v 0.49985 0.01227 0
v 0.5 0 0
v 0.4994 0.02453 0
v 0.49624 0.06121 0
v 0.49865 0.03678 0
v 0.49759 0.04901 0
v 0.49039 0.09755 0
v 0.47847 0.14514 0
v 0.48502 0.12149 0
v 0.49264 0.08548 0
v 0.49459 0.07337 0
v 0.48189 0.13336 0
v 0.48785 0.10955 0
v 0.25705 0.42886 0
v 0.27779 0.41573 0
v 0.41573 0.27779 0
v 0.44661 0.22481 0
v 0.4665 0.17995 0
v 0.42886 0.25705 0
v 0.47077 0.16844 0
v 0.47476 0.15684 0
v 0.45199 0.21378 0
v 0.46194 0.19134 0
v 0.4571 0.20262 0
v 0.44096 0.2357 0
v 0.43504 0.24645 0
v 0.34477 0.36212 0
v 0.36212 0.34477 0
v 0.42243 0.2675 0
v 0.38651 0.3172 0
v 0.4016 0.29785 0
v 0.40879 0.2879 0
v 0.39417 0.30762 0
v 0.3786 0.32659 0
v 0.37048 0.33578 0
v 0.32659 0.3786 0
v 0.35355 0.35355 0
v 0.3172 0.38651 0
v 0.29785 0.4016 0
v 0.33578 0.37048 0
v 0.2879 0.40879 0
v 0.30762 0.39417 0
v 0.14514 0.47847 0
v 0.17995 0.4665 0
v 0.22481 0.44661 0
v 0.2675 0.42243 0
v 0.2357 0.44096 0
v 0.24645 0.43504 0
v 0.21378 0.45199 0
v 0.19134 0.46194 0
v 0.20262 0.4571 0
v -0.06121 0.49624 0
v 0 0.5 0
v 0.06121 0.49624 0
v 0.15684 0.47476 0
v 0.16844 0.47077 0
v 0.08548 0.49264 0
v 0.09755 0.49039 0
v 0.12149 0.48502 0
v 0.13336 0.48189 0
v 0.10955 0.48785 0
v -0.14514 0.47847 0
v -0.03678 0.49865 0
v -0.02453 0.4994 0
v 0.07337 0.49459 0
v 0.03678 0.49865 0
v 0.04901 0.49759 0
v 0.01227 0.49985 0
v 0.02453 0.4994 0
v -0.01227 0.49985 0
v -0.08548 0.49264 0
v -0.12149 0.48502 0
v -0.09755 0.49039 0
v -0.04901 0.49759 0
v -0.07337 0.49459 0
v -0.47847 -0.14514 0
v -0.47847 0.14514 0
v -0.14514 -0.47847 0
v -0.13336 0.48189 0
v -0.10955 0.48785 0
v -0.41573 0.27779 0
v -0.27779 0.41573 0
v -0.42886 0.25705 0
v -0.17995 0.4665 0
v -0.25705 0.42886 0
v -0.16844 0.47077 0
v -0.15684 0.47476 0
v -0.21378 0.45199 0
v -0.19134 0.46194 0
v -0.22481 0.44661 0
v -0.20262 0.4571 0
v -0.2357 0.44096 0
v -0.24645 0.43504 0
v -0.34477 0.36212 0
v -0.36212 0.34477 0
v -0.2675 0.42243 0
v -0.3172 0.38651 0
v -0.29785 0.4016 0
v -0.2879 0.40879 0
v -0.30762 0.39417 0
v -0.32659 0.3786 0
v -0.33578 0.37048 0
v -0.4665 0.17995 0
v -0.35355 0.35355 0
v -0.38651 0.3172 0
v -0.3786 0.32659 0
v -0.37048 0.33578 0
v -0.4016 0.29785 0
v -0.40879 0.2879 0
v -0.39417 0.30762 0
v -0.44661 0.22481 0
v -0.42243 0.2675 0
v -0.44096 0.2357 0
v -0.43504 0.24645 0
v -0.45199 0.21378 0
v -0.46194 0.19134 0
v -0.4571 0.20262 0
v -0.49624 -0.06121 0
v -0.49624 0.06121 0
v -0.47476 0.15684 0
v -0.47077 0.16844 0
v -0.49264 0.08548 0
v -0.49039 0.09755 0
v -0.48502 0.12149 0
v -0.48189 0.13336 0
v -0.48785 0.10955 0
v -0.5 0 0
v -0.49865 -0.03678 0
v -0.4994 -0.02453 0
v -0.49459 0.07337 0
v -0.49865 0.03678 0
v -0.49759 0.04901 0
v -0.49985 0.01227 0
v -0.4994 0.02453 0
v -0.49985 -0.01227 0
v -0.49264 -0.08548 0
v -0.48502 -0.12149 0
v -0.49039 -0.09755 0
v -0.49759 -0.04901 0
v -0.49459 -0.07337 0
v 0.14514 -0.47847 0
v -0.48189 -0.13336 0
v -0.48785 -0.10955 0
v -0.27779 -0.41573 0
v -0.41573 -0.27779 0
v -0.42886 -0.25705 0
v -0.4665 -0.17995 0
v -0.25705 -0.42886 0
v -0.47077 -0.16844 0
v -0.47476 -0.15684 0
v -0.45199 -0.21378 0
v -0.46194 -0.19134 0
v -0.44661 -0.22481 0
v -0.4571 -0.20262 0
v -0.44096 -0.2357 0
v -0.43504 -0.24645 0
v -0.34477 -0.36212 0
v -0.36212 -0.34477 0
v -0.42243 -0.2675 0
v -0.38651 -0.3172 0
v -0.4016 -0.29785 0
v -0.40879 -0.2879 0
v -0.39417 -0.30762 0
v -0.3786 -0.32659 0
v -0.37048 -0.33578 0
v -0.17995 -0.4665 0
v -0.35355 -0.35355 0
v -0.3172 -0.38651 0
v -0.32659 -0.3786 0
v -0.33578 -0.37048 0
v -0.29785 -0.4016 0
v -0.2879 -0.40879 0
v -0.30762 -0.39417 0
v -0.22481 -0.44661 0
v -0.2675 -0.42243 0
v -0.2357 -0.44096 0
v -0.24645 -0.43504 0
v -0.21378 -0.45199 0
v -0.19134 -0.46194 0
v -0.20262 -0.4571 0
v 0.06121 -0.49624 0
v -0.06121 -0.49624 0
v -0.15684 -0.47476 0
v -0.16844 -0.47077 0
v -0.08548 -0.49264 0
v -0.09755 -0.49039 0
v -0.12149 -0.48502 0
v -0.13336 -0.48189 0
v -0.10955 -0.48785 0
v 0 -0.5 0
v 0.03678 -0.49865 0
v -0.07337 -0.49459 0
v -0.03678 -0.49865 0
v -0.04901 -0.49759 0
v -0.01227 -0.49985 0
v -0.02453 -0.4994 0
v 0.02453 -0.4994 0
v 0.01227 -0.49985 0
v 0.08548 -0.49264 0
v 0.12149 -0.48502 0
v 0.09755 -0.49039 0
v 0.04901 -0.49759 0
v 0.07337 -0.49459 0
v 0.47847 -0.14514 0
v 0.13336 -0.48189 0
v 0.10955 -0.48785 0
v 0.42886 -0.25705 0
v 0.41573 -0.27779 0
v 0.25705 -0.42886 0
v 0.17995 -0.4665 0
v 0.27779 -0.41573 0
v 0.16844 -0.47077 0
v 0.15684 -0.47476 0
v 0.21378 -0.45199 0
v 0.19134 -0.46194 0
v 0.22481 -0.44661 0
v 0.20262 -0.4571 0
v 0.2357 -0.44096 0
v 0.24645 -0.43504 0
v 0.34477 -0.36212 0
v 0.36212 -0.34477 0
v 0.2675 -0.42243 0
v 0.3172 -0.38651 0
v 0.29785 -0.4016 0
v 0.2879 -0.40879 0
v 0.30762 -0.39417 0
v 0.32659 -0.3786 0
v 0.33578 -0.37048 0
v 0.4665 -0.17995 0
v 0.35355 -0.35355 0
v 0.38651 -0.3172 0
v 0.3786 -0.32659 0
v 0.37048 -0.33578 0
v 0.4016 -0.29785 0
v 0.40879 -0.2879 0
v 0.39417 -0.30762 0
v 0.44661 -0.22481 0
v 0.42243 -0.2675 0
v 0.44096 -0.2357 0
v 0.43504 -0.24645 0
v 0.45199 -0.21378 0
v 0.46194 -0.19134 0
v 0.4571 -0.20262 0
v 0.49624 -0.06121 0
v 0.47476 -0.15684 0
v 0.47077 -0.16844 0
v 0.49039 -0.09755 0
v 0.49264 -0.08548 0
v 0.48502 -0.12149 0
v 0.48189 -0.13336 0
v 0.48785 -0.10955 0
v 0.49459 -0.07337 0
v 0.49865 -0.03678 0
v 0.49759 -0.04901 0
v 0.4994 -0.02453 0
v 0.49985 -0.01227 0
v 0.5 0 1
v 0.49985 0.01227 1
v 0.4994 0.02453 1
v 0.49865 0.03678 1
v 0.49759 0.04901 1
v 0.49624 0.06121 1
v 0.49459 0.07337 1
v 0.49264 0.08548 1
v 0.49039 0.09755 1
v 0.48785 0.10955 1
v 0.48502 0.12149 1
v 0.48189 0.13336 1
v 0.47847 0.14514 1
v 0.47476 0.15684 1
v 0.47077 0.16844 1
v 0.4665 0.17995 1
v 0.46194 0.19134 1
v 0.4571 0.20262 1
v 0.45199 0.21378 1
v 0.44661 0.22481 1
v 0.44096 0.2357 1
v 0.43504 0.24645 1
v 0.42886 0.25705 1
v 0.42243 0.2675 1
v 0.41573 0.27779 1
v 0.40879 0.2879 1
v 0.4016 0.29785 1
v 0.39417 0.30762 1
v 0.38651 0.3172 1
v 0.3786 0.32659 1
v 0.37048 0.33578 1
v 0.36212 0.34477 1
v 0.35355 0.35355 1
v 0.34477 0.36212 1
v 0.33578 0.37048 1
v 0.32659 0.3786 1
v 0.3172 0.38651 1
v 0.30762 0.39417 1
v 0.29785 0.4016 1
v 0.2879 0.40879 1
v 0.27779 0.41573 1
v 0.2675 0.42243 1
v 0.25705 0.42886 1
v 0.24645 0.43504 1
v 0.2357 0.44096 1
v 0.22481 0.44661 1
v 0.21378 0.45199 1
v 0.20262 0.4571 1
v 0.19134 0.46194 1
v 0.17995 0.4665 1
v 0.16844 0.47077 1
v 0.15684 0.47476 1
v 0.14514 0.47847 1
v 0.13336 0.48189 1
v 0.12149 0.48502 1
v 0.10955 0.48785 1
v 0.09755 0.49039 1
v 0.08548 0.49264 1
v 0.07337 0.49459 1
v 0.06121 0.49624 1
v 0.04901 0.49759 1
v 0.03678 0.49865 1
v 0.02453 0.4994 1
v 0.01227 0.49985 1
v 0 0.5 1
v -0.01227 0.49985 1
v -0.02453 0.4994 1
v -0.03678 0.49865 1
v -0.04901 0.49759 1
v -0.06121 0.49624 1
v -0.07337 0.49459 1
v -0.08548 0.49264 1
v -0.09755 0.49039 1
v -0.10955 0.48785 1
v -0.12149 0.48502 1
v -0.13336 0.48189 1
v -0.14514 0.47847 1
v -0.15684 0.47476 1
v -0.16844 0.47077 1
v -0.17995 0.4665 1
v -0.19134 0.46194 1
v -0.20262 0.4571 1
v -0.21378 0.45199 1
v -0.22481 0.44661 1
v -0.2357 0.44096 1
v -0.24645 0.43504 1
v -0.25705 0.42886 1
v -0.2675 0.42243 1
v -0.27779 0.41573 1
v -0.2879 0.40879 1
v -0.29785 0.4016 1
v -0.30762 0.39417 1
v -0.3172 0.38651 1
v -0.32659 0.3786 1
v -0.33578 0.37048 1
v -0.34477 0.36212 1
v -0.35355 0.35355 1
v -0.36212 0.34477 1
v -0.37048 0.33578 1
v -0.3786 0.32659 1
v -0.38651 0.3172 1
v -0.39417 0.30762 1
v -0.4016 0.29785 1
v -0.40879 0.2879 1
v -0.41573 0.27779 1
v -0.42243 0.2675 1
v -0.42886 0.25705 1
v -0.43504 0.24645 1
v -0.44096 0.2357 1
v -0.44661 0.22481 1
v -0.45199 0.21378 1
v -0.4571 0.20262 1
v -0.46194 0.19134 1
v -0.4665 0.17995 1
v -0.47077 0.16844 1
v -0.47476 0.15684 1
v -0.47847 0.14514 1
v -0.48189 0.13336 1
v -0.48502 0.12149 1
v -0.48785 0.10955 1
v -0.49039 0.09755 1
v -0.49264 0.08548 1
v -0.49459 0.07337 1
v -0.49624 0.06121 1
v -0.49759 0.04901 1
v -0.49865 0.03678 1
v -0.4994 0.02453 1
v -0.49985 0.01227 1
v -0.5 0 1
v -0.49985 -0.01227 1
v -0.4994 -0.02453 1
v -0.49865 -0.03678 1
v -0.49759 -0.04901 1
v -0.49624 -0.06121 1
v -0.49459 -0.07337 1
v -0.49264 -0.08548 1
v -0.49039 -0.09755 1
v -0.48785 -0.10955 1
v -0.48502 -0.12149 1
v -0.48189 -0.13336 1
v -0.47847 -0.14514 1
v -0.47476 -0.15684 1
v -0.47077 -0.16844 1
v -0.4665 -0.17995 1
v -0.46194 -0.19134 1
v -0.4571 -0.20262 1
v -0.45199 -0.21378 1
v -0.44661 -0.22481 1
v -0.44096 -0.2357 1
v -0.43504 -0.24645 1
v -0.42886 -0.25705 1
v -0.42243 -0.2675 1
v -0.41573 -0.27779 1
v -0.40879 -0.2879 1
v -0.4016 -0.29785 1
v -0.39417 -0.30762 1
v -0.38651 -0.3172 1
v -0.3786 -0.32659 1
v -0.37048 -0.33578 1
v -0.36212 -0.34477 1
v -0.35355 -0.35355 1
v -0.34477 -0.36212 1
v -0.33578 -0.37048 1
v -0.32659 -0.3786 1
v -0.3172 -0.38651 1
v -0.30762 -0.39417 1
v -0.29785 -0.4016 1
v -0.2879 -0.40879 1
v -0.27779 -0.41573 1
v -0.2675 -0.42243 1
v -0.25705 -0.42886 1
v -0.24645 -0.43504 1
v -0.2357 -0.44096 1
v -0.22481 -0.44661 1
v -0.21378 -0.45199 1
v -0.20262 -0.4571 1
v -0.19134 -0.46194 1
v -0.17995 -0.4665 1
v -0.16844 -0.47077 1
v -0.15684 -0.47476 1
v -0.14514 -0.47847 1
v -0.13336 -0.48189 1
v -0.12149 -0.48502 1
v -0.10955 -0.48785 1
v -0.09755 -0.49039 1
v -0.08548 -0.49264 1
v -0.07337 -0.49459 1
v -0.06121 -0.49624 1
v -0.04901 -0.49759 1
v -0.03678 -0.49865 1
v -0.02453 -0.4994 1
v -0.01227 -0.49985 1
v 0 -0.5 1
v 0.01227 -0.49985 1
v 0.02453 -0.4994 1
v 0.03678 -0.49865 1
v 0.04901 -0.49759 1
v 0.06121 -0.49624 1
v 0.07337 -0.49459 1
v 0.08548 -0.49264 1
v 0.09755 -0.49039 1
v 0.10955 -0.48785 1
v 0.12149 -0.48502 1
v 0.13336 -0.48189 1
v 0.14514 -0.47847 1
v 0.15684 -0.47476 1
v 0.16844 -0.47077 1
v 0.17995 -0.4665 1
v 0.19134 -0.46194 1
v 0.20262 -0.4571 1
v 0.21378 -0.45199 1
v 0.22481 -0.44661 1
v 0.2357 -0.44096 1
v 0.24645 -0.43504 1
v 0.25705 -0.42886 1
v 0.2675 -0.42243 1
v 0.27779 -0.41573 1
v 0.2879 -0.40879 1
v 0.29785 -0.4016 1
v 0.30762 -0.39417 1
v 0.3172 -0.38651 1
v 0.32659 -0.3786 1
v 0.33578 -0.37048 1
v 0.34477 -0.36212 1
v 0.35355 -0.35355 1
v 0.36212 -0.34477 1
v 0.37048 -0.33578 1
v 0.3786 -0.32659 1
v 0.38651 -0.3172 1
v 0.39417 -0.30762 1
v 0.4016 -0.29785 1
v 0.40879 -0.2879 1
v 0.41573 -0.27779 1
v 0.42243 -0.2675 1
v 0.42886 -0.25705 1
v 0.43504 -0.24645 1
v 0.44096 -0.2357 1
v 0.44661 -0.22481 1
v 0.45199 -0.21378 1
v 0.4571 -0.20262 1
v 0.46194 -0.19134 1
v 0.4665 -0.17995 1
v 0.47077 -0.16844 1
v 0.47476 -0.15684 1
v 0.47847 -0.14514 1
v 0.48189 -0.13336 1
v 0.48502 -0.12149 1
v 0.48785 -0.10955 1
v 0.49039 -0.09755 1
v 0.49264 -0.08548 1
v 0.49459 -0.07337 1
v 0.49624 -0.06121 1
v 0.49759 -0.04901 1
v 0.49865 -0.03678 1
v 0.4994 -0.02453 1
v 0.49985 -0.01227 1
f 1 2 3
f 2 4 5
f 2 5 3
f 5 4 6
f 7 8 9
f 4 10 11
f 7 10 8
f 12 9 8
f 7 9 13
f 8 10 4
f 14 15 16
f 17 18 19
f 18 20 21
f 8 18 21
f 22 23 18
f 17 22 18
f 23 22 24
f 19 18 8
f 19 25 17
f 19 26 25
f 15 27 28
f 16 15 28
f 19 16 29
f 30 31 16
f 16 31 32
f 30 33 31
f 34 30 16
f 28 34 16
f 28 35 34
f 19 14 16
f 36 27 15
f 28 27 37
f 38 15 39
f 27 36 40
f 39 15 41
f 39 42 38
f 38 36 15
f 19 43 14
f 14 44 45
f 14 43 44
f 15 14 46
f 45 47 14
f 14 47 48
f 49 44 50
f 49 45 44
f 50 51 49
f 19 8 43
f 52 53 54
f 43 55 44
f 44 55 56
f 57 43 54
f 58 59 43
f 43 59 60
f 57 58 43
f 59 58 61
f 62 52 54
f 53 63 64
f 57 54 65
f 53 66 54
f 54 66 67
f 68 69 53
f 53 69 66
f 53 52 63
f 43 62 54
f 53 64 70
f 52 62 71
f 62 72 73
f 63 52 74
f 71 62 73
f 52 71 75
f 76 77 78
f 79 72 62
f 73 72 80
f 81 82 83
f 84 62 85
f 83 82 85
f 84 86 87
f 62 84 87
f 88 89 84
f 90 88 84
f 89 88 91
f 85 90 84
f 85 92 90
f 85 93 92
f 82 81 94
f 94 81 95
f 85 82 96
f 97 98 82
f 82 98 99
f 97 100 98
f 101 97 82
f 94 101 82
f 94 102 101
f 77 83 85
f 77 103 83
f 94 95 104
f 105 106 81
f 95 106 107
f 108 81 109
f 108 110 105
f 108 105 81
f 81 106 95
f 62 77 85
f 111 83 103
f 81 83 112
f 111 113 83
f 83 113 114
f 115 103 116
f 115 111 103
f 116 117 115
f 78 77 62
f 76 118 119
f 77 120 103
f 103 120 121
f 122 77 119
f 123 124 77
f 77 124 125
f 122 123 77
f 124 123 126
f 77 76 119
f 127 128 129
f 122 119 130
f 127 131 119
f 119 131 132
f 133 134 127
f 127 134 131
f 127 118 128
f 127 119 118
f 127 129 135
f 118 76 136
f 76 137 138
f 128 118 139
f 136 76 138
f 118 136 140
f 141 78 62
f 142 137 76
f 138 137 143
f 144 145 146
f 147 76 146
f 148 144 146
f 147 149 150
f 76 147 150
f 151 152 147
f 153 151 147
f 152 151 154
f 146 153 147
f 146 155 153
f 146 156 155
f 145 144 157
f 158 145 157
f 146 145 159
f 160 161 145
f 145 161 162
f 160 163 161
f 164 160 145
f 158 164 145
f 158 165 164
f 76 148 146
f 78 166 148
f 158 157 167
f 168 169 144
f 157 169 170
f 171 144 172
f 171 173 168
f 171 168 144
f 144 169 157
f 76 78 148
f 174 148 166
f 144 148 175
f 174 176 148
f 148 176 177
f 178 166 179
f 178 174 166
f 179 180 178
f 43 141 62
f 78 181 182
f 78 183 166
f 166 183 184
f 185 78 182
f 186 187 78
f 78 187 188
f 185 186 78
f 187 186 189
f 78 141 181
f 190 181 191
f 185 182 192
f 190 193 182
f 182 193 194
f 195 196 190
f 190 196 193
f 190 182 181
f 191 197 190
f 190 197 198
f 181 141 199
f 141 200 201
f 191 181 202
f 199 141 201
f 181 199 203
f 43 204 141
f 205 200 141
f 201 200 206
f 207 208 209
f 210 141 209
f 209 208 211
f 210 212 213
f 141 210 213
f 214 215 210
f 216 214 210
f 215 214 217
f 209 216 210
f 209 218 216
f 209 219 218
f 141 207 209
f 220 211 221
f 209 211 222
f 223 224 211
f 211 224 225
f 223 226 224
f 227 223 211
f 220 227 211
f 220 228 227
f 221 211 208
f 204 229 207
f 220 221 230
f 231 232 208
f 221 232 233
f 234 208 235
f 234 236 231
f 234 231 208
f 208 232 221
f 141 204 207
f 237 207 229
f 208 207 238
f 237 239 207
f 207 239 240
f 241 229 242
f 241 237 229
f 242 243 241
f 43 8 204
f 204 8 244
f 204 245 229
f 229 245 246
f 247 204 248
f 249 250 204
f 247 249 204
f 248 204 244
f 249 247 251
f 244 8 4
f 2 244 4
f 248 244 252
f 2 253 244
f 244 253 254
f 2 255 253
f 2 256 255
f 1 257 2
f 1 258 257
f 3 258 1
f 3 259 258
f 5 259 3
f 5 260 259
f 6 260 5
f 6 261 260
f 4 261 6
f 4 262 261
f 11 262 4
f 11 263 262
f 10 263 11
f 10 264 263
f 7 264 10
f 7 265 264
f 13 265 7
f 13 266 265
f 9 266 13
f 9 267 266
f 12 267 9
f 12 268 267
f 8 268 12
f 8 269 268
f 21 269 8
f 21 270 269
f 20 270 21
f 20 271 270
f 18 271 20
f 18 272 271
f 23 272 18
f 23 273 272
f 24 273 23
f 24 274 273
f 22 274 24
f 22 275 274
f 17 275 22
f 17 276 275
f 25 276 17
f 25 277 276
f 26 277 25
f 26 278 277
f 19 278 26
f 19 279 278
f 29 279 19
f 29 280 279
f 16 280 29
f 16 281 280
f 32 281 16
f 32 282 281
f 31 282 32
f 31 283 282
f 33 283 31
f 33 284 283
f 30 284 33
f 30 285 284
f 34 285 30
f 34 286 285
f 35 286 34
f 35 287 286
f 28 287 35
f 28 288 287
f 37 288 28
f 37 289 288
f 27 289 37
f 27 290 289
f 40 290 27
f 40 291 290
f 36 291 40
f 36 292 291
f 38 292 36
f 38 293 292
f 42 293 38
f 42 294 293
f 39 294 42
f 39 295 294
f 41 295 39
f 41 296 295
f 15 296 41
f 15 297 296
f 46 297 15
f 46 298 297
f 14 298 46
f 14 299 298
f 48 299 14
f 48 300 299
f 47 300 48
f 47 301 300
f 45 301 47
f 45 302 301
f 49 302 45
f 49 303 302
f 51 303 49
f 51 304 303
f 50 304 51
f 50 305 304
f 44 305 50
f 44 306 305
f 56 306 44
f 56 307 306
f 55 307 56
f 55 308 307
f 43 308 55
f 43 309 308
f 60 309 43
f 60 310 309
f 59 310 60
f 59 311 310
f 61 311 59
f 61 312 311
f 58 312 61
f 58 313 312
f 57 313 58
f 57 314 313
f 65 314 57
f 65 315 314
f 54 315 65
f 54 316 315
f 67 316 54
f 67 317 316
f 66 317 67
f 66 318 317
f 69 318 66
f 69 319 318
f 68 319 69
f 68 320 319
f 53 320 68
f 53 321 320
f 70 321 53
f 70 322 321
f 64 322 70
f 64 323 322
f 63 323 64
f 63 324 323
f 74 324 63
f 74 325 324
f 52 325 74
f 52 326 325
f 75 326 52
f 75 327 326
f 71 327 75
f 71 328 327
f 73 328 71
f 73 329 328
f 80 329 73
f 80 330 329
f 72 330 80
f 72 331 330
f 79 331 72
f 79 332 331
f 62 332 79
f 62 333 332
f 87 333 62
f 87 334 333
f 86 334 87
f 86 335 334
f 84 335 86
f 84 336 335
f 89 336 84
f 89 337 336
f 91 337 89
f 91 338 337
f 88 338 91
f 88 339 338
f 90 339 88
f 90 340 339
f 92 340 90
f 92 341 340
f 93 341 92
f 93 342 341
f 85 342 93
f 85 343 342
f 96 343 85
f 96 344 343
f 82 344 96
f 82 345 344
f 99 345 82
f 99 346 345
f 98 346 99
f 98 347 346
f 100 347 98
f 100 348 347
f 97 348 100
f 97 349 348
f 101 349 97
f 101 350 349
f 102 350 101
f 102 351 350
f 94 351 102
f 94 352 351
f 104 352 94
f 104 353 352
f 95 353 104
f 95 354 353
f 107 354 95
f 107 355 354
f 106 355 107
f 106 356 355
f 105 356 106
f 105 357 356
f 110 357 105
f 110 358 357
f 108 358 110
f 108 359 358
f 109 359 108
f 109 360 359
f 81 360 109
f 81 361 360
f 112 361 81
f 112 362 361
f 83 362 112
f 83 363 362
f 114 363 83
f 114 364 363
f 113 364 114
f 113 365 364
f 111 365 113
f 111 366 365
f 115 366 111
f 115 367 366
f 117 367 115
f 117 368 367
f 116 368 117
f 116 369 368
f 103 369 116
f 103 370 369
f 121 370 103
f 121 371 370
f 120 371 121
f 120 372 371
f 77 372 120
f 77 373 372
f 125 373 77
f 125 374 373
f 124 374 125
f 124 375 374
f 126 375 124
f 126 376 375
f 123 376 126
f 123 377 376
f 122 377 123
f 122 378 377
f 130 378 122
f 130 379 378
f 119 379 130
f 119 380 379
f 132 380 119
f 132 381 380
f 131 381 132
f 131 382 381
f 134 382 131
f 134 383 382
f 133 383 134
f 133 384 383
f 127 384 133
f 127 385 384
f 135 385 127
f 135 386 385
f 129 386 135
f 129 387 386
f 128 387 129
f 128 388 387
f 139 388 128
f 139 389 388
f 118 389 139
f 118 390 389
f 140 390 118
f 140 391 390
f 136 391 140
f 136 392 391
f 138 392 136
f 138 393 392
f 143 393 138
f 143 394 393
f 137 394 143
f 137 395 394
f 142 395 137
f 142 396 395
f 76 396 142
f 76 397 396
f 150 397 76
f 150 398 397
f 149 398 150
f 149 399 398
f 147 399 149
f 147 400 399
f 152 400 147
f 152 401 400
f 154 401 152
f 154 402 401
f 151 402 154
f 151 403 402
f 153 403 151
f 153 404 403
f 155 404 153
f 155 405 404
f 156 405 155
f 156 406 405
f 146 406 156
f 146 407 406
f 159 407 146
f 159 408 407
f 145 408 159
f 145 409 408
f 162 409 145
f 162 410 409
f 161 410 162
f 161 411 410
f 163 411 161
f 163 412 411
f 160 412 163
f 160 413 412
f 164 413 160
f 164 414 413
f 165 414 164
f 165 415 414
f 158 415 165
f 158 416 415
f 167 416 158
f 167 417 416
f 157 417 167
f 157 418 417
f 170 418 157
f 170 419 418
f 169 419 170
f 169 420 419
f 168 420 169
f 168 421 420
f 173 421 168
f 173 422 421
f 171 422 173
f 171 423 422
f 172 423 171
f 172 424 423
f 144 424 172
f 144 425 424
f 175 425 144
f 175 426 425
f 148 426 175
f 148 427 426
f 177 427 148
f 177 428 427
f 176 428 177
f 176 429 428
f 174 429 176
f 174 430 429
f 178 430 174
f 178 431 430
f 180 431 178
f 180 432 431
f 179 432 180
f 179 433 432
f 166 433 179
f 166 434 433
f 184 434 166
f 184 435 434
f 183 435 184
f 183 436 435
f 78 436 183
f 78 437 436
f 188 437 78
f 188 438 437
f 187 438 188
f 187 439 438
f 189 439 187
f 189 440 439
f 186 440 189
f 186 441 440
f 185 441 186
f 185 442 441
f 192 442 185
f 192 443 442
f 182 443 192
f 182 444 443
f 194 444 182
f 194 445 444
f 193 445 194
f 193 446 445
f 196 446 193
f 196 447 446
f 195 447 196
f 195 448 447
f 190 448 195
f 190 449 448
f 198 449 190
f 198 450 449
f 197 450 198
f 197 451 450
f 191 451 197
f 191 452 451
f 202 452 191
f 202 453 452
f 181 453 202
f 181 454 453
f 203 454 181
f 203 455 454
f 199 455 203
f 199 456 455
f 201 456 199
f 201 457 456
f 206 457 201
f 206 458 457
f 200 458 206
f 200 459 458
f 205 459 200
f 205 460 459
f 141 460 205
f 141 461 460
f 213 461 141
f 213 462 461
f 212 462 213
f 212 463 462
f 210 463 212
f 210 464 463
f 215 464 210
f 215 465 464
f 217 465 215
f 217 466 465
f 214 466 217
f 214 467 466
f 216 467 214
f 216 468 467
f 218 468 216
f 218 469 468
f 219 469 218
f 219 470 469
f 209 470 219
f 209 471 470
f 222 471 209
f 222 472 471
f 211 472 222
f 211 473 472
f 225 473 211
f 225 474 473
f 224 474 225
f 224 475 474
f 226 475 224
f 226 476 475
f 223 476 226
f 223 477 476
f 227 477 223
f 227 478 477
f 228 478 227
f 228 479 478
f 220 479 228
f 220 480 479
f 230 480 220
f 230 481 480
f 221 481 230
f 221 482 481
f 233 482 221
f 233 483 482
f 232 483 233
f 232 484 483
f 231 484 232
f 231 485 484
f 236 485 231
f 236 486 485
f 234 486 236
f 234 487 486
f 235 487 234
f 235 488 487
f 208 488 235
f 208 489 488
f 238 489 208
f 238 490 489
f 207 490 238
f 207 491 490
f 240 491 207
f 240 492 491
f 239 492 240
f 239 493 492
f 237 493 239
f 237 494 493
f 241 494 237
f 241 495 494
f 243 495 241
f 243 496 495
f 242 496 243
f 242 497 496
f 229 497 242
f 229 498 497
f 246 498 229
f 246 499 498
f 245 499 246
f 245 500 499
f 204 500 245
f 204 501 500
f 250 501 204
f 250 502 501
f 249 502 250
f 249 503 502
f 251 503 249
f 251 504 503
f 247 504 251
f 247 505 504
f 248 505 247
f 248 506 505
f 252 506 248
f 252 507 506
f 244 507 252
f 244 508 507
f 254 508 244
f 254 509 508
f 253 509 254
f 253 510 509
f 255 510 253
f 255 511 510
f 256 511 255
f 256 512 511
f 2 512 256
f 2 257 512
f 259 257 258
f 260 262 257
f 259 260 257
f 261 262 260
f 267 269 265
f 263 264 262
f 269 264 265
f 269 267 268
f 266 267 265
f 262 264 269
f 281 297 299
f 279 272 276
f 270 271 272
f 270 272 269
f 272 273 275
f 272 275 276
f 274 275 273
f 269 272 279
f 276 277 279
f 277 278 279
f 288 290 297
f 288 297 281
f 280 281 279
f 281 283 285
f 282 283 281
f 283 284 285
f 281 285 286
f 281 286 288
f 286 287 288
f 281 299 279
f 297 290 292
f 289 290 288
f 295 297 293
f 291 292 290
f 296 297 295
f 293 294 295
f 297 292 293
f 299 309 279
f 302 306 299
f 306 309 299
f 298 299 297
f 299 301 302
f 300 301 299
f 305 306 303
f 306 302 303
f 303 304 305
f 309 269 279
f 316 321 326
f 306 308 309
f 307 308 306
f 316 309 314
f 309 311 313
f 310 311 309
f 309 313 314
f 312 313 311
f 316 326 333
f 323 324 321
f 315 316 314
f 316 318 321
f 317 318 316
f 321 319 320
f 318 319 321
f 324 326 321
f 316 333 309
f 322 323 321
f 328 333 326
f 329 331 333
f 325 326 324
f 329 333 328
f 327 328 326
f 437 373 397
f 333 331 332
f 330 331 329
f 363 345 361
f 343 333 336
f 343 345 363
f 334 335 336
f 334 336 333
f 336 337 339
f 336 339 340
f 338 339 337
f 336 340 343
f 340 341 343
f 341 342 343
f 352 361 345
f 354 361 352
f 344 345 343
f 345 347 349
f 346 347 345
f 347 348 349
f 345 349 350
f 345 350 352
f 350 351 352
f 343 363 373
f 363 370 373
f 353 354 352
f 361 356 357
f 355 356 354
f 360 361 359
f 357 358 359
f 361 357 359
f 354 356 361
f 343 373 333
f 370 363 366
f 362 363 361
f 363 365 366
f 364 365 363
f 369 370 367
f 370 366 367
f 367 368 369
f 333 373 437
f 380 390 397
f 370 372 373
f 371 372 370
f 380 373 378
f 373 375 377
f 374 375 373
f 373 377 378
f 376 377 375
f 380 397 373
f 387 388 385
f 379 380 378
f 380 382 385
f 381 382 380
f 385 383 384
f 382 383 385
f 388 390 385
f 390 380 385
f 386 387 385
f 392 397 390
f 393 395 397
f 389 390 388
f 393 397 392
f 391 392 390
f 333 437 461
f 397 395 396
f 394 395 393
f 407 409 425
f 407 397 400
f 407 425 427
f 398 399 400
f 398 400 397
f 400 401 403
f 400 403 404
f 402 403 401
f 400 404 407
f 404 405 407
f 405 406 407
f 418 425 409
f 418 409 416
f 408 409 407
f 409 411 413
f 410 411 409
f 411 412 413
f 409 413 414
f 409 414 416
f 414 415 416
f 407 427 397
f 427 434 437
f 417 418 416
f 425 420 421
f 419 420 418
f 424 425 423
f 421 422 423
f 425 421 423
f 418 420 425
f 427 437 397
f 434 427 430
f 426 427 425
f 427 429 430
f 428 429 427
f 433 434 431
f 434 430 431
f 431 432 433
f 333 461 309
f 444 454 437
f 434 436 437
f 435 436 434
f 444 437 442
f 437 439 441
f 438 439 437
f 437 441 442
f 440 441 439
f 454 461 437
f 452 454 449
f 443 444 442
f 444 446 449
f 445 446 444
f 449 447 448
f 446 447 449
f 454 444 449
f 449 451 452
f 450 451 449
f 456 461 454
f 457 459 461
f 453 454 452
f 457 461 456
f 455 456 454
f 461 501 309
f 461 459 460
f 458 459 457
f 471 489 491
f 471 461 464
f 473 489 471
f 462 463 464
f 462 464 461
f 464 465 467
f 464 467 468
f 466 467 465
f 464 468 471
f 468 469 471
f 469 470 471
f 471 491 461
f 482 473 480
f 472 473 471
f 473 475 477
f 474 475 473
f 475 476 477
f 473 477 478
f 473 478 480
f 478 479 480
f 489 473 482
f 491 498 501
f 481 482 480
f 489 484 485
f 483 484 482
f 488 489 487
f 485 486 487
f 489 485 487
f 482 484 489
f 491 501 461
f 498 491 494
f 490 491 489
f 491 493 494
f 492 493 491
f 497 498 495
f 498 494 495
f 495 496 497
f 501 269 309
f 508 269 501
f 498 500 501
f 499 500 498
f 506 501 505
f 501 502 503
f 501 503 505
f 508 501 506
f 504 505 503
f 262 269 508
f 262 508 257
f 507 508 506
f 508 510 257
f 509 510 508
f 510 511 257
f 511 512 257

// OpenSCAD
// Cylinder for Basic Shapes
// by Slashee the Cow
$fn = 256;

linear_extrude(1)
    circle(d=1);
